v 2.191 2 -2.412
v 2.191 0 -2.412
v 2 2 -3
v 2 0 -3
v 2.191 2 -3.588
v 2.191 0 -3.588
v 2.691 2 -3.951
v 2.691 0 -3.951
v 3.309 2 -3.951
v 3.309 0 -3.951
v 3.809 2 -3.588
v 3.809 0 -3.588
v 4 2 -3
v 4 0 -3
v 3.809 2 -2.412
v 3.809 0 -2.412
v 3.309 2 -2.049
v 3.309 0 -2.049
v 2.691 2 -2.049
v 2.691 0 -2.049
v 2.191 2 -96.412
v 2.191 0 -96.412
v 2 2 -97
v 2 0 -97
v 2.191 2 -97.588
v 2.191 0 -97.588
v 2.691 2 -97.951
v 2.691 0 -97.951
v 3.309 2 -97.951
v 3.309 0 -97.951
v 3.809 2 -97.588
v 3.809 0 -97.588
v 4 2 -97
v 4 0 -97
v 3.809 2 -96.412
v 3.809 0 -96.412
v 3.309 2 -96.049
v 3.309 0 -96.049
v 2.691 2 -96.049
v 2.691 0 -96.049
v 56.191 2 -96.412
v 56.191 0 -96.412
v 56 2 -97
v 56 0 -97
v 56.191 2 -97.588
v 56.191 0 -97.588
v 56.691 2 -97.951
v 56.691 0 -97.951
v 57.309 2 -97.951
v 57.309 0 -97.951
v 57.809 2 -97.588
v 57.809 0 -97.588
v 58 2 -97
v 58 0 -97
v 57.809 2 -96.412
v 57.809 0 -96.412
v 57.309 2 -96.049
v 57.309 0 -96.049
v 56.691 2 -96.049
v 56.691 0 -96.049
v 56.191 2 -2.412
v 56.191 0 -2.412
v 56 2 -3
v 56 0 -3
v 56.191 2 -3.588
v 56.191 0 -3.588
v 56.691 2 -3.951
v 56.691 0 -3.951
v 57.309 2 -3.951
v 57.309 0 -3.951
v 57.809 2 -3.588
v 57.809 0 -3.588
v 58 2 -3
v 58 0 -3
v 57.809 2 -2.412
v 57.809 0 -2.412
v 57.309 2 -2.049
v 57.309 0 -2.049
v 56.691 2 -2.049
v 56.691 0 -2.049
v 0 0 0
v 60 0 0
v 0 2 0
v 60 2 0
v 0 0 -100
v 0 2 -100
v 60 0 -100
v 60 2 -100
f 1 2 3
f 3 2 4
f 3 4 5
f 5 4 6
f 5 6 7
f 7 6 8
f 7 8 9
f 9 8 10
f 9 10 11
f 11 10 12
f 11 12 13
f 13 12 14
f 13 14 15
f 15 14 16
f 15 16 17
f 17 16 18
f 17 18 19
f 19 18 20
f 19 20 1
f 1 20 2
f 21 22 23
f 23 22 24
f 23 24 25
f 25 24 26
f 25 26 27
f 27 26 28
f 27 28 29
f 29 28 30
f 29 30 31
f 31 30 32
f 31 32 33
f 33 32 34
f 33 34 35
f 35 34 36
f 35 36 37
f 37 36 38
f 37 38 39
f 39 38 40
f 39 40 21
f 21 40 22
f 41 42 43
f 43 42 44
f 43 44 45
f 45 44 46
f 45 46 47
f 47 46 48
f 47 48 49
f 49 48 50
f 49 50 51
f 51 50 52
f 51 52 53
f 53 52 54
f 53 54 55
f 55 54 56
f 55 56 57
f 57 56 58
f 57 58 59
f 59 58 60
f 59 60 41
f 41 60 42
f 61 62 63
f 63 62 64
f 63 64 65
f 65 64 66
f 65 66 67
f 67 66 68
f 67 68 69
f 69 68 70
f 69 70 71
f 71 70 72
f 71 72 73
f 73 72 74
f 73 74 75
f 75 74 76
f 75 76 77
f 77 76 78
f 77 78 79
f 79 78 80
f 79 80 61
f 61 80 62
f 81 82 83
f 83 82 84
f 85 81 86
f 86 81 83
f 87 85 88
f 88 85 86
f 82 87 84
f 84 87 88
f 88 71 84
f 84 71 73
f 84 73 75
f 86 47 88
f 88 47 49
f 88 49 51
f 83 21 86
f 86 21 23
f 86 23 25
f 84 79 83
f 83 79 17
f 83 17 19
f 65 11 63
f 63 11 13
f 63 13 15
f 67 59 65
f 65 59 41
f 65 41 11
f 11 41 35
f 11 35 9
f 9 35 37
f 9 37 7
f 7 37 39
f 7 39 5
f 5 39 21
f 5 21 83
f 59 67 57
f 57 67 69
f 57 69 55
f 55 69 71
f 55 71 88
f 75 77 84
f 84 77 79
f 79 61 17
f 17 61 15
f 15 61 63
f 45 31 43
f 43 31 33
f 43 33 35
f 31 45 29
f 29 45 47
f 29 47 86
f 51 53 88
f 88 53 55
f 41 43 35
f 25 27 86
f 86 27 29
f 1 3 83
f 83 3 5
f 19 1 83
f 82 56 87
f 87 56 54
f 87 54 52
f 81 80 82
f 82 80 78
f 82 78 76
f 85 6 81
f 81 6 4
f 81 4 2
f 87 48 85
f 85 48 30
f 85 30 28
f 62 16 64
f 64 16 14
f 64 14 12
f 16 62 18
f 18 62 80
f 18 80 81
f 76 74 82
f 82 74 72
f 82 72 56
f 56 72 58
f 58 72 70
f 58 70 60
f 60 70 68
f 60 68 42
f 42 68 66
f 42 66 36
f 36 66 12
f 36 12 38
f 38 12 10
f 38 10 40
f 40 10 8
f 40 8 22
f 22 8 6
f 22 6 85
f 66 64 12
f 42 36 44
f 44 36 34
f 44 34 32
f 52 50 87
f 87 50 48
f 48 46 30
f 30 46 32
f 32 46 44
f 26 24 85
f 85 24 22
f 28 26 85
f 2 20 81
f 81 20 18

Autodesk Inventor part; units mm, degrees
ref_plane "YZ Plane" through (0, 0, 0) normal (1, 0, 0) x (0, 1, 0)
ref_plane "XZ Plane" through (0, 0, 0) normal (0, 1, 0) x (-1, 0, 0)
ref_plane "XY Plane" through (0, 0, 0) normal (0, 0, 1) x (1, 0, 0)
sketch "Sketch1" plane through (0, 0, 0) normal (0, 1, 0) x (-1, 0, 0)
  line L0 (0, 0) -> (-60, 0)
  line L1 (-60, 0) -> (-60, -100)
  line L2 (-60, -100) -> (0, -100)
  line L3 (0, -100) -> (0, 0)
  line L4 (-58, -5) -> (-58, -95)
  line L5 (-5, -2) -> (-5, -3)
  line L6 (-3, -5) -> (-2, -5)
  line L7 (-55, -2) -> (-55, -3)
  line L8 (-57, -5) -> (-58, -5)
  line L9 (-55, -98) -> (-55, -97)
  line L10 (-57, -95) -> (-58, -95)
  line L11 (-5, -98) -> (-5, -97)
  line L12 (-3, -95) -> (-2, -95)
  arc A0 (-5, -3) -> (-3, -5) centre (-3, -3) ccw
  arc A1 (-57, -5) -> (-55, -3) centre (-57, -3) ccw
  arc A2 (-55, -97) -> (-57, -95) centre (-57, -97) ccw
  arc A3 (-3, -95) -> (-5, -97) centre (-3, -97) ccw
  circle A4 centre (-57, -3) radius 1
  circle A5 centre (-57, -97) radius 1
  circle A6 centre (-3, -97) radius 1
  circle A7 centre (-3, -3) radius 1
  line L13 (-5, -2) -> (-55, -2)
  line L14 (-2, -95) -> (-2, -5)
  line L15 (-55, -98) -> (-5, -98)
  point P0 (-5, -5)
  point P1 (-55, -5)
  point P2 (-55, -95)
  point P3 (-5, -95)
  dimension "d0" = 60
  dimension "d1" = 100
  dimension "d6" = 3
  dimension "d7" = 3
  dimension "d8" = 3
  dimension "d9" = 3
  dimension "d10" = 3
  dimension "d11" = 3
  dimension "d12" = 2
  dimension "d13" = 3
  dimension "d14" = 2
  dimension "d15" = 2
  dimension "d16" = 2
  dimension "d17" = 2
extrude "Extrusion1" add sketch "Sketch1" along normal blind 2 contours L3 L2 L1 L0 | L8 A1 L7 L13 L5 A0 L6 L14 L12 A3 L11 L15 L9 A2 L10 L4
